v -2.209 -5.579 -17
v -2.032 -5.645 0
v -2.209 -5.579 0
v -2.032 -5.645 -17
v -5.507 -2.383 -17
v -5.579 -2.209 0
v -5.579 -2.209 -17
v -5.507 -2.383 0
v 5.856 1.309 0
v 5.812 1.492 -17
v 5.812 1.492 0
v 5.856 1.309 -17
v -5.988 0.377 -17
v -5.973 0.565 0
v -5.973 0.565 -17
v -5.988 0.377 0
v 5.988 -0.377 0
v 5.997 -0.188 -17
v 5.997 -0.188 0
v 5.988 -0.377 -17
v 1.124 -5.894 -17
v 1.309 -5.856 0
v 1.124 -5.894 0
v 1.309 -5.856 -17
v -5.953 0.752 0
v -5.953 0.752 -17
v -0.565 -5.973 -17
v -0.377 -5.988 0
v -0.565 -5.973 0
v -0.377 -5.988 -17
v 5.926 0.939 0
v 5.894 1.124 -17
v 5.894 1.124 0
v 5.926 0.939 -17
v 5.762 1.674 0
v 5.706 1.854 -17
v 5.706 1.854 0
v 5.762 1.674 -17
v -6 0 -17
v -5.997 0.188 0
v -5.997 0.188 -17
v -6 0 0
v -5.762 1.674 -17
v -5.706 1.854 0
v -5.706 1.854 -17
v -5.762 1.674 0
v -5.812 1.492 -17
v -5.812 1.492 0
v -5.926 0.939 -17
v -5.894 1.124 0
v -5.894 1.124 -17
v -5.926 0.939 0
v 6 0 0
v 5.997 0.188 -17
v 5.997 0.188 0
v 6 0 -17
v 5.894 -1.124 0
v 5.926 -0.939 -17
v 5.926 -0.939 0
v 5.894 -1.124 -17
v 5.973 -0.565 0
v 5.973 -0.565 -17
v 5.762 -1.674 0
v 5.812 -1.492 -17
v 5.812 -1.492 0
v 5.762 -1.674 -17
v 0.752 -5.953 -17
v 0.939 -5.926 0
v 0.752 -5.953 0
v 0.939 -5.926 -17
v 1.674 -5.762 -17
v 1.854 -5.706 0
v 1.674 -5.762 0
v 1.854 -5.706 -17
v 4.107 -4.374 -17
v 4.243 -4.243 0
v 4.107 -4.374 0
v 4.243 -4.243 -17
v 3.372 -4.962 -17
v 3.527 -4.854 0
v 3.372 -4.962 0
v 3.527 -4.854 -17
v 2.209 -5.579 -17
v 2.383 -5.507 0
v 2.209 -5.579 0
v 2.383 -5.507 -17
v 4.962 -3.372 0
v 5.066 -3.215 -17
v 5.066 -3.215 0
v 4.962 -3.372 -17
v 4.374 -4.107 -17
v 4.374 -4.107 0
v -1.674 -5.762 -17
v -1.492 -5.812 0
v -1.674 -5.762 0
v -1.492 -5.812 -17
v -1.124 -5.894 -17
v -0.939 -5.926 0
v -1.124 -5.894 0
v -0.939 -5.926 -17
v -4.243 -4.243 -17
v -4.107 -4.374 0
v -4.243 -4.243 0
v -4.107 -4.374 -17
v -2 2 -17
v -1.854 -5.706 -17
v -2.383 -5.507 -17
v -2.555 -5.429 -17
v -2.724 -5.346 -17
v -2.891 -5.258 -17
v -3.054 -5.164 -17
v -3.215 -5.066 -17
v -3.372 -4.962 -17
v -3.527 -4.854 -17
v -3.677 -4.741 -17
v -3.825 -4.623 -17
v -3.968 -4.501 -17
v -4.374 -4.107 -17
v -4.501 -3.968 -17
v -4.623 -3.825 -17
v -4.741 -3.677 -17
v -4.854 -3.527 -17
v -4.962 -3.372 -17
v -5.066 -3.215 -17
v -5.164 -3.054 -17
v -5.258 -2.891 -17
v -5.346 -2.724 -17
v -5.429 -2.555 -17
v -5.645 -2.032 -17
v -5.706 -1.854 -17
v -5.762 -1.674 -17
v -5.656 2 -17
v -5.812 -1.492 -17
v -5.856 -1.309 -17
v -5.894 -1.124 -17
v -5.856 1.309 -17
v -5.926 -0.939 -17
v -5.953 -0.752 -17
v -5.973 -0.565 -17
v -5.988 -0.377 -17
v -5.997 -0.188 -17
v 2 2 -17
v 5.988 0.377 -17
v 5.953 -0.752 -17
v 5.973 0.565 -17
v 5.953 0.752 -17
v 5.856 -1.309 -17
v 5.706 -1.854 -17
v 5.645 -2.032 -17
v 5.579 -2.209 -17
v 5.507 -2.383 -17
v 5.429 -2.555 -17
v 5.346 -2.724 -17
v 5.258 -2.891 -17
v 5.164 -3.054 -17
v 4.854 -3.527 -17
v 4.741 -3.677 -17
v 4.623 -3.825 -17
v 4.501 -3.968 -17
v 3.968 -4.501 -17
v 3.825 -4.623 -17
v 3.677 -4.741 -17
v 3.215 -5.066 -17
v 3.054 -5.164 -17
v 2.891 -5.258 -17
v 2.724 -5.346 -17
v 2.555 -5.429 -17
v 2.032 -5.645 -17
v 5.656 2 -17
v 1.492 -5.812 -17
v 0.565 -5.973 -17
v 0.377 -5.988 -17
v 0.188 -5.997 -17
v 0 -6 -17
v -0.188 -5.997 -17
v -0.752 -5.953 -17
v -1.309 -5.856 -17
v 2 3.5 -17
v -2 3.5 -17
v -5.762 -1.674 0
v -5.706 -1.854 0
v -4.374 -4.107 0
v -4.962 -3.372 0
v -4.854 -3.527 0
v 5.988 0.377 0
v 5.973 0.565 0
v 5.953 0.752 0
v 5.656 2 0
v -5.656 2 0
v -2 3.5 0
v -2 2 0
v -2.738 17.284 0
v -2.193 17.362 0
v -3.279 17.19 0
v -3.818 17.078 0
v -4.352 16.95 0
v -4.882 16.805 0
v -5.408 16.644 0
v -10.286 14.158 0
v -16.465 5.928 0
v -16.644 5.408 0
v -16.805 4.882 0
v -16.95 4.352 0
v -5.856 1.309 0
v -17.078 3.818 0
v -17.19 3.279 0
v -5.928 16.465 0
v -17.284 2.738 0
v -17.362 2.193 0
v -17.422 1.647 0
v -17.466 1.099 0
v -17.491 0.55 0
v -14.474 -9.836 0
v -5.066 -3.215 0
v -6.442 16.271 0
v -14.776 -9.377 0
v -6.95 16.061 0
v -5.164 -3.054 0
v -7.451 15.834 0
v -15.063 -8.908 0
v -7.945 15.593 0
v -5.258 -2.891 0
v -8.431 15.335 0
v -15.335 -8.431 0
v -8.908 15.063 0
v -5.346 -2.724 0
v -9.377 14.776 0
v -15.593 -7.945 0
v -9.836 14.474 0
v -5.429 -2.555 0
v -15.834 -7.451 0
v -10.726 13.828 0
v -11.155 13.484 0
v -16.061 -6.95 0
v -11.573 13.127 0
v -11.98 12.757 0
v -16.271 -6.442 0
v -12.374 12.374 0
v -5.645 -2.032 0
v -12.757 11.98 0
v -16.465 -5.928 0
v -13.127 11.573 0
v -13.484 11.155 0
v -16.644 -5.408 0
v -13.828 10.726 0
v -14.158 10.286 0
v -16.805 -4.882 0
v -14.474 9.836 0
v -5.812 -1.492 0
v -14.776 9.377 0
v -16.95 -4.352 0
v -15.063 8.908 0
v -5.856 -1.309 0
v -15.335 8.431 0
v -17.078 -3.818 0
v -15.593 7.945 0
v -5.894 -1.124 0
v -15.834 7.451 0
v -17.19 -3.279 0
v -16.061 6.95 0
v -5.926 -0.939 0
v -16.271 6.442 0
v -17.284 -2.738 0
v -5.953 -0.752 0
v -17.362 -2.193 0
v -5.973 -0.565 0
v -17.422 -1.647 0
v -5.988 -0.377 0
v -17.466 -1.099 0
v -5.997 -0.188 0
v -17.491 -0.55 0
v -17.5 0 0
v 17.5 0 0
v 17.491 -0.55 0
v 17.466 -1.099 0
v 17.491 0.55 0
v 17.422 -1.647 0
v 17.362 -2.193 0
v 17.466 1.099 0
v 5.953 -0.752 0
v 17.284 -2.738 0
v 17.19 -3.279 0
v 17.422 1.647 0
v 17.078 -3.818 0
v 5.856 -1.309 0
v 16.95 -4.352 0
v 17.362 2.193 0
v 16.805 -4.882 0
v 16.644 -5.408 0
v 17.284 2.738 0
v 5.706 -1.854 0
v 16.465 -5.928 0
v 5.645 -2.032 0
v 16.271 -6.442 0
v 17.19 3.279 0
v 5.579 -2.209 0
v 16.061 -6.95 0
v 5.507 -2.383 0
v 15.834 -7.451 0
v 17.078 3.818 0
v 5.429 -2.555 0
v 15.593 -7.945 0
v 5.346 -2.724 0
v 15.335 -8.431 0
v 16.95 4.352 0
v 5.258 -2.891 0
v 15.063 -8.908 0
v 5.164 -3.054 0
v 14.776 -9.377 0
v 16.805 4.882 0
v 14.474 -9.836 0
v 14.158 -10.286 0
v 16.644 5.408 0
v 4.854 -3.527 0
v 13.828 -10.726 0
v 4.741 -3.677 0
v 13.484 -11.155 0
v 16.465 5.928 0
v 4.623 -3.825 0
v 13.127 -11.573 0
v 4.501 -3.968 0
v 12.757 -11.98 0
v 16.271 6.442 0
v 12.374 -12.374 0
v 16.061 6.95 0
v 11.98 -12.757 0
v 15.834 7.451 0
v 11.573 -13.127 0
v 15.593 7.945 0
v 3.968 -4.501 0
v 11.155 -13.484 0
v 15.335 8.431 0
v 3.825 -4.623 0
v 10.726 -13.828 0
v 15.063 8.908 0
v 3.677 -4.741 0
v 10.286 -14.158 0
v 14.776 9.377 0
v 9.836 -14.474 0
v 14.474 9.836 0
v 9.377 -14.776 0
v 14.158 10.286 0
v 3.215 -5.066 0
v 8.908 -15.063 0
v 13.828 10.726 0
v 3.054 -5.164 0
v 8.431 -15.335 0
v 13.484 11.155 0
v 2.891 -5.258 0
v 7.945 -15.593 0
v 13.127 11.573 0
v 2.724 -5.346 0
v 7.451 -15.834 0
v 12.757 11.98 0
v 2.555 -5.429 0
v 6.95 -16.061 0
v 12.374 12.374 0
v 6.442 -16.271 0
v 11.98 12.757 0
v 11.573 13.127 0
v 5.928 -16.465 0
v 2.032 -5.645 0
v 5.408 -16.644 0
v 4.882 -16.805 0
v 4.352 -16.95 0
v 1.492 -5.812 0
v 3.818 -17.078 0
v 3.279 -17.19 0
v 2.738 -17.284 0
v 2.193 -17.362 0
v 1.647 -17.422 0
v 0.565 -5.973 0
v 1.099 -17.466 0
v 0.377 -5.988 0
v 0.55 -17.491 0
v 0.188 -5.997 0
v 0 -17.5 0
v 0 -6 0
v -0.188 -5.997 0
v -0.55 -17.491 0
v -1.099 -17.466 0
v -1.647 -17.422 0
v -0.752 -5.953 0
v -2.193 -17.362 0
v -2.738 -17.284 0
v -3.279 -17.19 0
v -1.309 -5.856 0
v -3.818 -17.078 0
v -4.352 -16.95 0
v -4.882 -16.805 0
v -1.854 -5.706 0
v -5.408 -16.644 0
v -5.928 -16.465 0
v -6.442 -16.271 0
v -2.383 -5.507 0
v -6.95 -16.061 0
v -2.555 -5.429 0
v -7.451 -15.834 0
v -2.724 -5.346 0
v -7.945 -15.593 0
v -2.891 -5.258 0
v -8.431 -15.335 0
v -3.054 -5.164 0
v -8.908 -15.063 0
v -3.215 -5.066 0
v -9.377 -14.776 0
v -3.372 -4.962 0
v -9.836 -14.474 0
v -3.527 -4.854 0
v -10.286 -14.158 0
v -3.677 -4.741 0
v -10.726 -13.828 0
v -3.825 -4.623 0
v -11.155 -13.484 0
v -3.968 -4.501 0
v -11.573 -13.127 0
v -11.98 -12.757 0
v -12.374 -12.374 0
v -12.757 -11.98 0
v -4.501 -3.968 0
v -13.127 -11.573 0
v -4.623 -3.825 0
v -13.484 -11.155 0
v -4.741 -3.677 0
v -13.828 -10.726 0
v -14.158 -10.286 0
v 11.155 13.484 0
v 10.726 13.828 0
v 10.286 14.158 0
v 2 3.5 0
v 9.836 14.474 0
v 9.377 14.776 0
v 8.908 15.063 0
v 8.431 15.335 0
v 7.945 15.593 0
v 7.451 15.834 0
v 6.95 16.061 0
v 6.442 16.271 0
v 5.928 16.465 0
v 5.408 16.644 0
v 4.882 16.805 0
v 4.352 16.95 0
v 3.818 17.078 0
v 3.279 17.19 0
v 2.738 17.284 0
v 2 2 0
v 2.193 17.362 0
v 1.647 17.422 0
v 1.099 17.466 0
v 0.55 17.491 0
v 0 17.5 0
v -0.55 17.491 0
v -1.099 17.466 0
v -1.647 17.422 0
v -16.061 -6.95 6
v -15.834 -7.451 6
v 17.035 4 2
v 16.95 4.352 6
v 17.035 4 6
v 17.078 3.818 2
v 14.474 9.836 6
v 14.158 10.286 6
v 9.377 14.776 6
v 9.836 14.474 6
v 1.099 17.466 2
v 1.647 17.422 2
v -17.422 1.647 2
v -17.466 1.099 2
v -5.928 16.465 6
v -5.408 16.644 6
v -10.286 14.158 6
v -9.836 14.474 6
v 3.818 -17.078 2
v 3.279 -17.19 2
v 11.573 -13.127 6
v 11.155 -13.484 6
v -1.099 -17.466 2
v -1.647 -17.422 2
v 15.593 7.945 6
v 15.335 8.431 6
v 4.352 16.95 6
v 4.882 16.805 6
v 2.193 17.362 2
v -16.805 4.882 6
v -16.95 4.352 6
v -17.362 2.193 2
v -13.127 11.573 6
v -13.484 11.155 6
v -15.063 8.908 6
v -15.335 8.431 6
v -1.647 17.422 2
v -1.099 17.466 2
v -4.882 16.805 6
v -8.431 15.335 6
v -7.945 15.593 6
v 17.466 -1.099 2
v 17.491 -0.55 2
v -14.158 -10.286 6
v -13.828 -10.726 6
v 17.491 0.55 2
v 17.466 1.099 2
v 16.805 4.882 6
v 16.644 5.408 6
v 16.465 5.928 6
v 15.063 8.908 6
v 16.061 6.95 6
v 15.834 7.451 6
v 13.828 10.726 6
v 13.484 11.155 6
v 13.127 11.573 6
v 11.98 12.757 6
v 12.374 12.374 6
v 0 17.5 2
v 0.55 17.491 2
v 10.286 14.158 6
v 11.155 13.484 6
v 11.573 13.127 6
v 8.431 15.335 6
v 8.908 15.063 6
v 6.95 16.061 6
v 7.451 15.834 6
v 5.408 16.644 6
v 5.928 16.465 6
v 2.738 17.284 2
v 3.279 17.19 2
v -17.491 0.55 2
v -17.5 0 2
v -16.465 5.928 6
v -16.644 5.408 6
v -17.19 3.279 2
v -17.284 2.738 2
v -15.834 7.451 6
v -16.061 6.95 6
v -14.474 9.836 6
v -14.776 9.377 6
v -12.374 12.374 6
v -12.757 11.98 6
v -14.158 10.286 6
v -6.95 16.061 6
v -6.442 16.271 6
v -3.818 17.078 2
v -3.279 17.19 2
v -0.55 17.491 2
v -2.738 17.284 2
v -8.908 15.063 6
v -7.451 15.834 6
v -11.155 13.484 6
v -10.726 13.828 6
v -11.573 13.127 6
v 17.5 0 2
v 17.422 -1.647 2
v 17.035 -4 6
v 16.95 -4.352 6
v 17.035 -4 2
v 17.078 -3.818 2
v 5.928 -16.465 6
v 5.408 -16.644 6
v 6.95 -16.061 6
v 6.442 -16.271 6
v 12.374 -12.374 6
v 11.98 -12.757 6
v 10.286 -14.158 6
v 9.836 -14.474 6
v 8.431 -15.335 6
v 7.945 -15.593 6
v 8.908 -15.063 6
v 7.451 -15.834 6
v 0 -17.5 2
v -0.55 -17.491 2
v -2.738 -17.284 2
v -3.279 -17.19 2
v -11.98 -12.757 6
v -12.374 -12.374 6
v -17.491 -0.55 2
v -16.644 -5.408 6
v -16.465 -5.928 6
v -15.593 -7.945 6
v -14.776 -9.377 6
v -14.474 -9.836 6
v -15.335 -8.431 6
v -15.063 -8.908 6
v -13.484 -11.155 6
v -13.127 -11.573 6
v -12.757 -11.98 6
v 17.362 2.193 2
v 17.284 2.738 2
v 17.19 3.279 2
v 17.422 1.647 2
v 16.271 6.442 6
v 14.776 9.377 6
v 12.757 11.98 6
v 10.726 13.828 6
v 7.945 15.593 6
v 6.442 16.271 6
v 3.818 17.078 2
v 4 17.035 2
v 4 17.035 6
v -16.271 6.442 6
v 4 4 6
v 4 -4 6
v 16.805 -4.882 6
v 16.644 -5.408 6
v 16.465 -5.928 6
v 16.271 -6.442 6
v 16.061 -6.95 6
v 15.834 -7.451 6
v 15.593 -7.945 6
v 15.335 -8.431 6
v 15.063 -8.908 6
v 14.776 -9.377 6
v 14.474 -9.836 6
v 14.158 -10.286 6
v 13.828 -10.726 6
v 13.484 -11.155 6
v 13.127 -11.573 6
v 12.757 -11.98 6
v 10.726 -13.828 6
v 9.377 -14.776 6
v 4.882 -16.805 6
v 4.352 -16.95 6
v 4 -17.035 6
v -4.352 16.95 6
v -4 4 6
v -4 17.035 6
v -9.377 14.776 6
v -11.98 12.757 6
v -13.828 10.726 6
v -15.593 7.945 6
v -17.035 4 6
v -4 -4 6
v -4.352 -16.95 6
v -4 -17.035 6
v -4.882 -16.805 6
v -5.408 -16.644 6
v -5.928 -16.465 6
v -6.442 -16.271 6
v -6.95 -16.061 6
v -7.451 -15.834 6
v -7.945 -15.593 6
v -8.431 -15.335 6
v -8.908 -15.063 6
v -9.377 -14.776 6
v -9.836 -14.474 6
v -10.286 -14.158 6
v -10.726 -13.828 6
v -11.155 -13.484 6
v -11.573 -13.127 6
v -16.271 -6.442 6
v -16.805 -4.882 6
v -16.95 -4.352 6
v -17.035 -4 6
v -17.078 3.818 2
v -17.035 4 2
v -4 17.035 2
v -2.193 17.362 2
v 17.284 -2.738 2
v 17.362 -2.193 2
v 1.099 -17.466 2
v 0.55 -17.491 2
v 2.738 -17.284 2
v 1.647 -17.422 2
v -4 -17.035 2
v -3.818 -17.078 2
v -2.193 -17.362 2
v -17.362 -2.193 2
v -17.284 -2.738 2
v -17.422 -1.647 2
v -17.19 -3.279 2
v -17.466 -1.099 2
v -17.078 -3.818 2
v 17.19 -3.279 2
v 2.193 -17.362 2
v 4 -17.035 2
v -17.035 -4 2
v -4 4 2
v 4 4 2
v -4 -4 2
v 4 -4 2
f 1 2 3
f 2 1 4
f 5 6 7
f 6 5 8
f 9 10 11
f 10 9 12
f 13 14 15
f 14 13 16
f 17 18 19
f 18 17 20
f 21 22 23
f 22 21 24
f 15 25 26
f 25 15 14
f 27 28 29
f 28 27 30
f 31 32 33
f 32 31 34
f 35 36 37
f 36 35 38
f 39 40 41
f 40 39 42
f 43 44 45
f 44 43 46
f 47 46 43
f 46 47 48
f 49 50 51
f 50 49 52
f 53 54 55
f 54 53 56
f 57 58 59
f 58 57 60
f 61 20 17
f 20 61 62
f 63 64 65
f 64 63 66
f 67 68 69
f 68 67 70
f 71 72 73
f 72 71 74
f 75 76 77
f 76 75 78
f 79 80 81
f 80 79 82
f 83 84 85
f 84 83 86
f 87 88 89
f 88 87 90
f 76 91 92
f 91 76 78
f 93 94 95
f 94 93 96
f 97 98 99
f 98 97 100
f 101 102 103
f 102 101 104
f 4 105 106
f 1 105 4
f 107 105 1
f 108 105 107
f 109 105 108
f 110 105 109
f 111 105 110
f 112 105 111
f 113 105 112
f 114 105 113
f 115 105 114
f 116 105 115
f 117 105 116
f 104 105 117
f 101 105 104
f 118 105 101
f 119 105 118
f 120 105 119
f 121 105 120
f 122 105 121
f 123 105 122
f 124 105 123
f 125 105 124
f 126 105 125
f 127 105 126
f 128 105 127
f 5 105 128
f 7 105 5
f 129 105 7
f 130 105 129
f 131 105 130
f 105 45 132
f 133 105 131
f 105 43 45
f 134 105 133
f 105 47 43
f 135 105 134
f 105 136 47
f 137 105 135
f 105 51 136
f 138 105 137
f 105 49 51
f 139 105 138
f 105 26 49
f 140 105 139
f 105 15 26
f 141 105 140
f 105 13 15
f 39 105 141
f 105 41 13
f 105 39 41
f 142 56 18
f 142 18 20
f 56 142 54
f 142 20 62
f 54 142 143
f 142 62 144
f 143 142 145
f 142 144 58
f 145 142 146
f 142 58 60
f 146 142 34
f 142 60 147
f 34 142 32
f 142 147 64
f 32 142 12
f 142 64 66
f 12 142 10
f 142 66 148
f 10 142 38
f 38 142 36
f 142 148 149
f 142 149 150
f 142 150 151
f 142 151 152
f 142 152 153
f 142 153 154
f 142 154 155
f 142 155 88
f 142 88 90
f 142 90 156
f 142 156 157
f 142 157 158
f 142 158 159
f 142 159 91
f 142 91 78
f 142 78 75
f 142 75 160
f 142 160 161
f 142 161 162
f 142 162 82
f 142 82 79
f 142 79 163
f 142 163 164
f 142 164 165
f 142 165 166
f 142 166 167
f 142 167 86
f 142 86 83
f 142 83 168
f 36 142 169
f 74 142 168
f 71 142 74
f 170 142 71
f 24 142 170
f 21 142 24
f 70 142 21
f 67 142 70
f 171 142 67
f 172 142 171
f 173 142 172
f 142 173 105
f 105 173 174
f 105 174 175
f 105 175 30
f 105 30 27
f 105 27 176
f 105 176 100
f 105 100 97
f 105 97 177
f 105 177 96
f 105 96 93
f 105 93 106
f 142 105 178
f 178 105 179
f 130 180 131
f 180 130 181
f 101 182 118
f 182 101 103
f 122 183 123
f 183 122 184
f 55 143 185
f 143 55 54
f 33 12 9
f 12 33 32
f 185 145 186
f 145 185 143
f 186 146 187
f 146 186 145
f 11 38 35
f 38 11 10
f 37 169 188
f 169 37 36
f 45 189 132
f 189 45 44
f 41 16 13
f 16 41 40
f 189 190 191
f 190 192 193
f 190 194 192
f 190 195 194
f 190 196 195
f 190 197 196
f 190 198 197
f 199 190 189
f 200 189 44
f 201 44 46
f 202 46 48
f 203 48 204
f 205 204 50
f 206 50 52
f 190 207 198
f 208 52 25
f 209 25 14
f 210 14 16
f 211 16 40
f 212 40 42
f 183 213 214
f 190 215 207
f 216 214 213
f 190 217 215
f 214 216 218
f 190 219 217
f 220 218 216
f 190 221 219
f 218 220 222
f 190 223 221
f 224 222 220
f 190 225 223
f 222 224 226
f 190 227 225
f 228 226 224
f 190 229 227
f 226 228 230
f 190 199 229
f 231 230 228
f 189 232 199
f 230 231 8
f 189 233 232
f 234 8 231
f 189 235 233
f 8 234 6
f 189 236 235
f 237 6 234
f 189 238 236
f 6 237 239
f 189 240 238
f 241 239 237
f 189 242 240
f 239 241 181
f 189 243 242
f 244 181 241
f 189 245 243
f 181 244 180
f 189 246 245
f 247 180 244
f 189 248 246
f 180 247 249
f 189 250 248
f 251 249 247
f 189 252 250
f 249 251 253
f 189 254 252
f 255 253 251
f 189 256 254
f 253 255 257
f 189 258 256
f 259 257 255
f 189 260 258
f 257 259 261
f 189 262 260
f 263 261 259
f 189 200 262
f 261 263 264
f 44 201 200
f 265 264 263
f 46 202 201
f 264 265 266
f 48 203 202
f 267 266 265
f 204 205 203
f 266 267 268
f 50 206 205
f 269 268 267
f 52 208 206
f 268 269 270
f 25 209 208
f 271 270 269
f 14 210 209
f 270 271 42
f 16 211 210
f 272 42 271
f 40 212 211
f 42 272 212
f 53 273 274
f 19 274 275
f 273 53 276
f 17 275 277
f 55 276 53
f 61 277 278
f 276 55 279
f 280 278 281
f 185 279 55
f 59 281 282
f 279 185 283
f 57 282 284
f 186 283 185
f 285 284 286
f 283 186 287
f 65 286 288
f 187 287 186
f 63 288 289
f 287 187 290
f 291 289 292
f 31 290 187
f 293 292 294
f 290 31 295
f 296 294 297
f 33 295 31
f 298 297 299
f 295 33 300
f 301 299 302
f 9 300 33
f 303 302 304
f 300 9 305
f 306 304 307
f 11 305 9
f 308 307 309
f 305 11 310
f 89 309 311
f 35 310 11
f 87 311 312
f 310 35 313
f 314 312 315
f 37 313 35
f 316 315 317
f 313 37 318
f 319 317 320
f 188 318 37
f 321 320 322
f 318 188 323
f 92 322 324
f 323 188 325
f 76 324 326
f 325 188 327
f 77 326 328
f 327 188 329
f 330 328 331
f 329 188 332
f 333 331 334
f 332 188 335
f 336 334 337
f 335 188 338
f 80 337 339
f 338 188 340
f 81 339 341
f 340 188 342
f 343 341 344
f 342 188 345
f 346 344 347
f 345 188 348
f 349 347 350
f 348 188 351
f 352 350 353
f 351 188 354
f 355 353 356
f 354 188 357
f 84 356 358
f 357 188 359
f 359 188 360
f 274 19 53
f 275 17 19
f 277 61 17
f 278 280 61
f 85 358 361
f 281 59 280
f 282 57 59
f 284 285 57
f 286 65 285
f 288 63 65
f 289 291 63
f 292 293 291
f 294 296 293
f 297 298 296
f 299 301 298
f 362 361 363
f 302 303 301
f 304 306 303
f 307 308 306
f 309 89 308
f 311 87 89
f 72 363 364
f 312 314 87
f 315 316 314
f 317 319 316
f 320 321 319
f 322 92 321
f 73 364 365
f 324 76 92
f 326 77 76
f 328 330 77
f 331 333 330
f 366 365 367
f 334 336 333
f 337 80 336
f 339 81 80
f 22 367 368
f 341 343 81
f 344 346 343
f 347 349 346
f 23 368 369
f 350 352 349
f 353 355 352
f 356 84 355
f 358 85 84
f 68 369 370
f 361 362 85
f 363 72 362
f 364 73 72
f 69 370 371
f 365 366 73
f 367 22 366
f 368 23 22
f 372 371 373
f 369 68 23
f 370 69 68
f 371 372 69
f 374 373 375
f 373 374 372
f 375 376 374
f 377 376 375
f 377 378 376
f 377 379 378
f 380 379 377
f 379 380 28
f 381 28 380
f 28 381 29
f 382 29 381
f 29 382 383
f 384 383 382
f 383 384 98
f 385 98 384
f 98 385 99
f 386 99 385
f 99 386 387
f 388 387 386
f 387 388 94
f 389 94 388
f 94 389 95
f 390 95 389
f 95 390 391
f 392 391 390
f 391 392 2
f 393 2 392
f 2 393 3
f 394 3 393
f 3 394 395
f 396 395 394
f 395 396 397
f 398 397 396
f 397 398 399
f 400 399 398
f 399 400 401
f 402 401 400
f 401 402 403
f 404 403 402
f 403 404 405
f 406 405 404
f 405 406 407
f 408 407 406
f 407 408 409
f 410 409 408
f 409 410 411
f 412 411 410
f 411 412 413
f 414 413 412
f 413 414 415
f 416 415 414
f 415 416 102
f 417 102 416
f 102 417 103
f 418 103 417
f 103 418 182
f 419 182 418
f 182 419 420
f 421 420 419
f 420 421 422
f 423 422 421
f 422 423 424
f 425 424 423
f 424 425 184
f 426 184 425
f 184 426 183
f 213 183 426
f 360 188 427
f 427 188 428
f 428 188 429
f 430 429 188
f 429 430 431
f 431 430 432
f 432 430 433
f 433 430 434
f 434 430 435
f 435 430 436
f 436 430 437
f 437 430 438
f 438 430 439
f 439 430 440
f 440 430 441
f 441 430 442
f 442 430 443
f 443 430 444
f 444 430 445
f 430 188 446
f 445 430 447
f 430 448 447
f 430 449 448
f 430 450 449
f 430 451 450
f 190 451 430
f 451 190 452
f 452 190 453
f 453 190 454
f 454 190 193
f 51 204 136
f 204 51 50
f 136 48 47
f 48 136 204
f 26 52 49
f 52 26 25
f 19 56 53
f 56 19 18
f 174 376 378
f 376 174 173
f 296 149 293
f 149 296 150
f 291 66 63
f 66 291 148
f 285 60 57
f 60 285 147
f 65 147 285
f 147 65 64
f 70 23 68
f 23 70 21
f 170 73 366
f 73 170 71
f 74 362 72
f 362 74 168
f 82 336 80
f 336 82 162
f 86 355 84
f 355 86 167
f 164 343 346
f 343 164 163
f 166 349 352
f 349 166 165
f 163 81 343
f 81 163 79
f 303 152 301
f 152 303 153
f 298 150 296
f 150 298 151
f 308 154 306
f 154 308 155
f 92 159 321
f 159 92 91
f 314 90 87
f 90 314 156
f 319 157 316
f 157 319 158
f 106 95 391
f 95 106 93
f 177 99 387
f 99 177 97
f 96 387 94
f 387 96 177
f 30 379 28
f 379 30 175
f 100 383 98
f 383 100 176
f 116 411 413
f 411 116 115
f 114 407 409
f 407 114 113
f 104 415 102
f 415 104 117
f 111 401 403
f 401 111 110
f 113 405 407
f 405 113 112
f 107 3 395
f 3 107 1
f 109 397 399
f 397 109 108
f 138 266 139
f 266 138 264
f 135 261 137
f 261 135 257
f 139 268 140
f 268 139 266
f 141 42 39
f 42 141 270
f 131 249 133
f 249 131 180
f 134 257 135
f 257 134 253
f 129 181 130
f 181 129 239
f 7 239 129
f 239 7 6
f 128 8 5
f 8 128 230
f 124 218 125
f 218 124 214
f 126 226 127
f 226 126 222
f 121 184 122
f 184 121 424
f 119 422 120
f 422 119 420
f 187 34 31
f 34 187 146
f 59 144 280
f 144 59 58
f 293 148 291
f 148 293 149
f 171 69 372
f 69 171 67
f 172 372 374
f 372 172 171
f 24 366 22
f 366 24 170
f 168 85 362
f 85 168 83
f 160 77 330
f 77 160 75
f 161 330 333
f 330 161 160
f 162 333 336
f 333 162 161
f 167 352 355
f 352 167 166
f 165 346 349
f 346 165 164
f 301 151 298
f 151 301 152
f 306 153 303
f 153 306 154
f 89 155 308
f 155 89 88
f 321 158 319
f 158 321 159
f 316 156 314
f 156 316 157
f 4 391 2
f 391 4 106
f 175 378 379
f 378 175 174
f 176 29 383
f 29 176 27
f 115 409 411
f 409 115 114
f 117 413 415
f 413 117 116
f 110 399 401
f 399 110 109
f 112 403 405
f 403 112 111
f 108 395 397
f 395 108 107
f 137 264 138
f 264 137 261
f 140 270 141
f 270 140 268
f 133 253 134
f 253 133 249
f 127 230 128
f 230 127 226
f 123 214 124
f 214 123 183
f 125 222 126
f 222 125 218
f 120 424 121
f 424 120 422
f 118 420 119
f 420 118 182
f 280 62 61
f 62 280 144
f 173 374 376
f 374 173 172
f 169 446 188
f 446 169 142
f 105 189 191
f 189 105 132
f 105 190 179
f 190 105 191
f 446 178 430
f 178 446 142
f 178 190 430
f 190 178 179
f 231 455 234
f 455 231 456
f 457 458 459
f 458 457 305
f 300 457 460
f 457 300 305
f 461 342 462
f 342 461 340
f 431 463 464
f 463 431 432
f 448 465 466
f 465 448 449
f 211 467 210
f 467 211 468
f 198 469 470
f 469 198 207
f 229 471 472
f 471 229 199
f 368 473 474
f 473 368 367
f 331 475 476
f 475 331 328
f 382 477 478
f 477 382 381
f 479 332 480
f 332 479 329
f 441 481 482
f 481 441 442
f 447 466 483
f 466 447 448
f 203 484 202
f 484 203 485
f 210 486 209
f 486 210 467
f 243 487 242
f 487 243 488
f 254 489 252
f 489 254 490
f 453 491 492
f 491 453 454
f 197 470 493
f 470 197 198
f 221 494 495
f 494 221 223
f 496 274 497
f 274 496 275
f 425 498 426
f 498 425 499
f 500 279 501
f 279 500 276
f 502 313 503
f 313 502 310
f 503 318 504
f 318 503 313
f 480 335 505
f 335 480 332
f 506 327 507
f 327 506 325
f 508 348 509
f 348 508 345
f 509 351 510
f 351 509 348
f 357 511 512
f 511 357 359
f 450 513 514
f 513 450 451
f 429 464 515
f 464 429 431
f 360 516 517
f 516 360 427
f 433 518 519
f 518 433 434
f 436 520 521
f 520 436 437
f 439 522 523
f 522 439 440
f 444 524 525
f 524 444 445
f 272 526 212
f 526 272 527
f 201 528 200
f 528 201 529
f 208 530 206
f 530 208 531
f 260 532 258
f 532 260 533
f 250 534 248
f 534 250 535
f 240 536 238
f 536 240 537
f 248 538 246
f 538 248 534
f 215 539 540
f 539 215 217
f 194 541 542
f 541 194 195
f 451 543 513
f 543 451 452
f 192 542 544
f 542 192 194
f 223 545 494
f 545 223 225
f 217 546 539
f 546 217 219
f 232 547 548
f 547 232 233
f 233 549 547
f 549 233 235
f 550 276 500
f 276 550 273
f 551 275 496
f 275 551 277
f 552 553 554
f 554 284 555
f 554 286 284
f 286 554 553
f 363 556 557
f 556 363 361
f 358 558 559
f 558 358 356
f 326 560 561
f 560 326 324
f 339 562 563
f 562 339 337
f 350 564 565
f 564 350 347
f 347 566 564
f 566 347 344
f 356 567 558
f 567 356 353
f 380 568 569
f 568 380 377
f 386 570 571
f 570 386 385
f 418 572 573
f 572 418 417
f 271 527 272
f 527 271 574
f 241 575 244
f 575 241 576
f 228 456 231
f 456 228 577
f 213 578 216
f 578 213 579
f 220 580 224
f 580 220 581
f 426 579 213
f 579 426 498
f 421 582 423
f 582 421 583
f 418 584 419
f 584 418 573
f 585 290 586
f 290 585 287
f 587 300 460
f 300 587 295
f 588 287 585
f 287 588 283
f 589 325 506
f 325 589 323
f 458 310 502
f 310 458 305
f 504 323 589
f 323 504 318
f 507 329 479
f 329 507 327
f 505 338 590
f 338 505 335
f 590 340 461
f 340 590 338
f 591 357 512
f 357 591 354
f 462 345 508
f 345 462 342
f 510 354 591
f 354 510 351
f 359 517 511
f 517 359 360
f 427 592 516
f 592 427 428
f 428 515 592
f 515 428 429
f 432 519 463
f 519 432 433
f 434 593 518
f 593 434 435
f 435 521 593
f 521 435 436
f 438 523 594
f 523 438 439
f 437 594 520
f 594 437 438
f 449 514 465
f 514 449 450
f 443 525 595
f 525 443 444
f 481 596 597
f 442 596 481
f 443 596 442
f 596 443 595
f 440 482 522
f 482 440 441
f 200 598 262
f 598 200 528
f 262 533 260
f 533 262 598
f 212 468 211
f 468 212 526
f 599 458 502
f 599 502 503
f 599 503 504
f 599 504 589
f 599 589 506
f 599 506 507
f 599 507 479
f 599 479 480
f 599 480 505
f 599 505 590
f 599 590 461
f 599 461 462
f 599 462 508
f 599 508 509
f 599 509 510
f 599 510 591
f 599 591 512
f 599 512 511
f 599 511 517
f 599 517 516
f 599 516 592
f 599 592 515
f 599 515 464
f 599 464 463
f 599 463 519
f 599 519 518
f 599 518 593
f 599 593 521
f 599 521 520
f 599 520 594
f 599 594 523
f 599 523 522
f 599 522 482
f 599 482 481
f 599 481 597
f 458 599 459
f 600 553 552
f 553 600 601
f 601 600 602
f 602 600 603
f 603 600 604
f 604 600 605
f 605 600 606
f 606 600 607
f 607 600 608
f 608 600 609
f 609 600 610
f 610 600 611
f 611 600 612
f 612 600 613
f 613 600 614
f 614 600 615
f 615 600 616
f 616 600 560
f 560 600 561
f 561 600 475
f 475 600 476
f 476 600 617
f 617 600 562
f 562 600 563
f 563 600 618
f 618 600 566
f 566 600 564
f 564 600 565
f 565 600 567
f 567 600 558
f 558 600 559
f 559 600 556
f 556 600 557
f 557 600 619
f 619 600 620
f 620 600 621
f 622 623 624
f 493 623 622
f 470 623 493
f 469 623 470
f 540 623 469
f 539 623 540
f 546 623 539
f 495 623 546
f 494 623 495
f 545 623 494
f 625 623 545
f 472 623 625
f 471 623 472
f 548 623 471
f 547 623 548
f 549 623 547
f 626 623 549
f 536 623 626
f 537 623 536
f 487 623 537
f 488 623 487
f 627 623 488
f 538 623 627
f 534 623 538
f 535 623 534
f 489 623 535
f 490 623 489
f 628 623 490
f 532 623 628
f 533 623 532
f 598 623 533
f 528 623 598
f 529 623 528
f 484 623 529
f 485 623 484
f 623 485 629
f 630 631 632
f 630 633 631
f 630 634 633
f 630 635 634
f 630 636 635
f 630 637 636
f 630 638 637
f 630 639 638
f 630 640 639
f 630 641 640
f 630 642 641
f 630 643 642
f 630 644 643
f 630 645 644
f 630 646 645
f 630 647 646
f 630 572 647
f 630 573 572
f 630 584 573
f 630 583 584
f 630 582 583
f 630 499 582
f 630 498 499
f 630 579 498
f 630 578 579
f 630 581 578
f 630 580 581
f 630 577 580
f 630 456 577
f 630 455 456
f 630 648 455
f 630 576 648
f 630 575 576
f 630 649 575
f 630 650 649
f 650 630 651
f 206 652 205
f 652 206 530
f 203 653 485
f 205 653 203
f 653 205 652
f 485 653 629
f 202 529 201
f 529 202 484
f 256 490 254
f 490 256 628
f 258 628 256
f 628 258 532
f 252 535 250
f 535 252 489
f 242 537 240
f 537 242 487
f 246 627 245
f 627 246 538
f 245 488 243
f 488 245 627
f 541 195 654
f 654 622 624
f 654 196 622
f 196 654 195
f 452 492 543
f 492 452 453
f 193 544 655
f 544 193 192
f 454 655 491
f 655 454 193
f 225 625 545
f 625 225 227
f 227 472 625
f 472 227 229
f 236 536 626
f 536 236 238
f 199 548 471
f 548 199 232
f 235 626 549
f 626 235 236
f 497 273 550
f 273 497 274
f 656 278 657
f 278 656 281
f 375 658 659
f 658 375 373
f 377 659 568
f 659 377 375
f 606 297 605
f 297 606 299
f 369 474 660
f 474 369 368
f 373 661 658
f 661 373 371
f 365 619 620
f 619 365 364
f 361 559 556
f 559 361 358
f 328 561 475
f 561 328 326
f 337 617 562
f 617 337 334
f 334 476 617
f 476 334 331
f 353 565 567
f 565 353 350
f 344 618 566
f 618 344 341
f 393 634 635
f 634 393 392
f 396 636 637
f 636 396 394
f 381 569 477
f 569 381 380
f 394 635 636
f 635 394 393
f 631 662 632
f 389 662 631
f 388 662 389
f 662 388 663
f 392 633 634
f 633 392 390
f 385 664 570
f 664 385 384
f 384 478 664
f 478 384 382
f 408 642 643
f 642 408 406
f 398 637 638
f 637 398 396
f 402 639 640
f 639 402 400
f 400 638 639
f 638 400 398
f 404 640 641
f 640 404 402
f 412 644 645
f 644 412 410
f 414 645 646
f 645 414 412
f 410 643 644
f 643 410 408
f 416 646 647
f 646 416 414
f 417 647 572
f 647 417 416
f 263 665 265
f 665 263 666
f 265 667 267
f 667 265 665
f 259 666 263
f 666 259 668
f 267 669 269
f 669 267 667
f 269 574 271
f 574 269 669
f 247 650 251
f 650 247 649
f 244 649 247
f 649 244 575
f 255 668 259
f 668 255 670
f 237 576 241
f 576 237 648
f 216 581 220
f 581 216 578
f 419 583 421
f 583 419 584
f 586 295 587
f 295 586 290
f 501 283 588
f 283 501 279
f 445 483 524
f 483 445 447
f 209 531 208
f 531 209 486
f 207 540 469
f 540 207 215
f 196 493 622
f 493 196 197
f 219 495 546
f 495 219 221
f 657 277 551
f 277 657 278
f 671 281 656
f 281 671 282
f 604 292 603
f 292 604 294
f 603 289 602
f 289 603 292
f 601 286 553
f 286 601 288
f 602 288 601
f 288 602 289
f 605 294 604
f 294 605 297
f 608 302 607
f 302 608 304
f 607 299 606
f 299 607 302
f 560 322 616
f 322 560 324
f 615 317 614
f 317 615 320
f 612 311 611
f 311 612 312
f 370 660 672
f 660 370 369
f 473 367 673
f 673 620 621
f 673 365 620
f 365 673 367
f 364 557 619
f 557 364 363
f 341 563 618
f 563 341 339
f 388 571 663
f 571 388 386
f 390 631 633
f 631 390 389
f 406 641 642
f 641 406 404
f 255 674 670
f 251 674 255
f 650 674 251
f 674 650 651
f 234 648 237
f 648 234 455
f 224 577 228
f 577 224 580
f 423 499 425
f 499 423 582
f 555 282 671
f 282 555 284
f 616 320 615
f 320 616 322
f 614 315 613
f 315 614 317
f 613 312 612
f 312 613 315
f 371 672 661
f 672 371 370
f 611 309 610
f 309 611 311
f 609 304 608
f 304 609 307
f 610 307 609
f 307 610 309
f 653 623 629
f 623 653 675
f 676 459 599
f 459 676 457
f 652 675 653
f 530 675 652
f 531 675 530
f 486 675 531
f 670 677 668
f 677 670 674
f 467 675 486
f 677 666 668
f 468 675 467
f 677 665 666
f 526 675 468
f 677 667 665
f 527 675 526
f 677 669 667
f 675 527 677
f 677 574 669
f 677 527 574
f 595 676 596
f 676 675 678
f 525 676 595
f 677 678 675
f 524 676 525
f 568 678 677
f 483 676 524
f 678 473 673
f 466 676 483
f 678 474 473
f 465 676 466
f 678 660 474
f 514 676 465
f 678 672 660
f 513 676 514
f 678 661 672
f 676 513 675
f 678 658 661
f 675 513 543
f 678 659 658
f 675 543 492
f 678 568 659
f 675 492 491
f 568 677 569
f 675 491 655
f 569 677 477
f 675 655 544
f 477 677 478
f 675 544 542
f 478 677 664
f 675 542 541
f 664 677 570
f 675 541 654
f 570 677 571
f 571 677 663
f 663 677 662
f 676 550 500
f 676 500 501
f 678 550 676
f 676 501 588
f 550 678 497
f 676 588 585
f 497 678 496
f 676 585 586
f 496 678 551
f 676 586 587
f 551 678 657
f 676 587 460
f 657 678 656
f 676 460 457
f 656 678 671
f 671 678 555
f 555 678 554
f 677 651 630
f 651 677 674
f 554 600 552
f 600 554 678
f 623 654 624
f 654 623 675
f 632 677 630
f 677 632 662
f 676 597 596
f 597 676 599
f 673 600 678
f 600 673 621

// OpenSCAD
// quality
q=200;

ShaftLength=17;
ShaftDiameter=12;
ShaftOffset=8;

TopCylHeight=6;
TopCylDia=35;

difference(){
	union(){
		// shaft
        translate([0,0,-ShaftLength/2]){
            difference(){
                cylinder(h=ShaftLength, d=ShaftDiameter, center=true, $fn=q);
                translate([-ShaftDiameter/2,(ShaftDiameter-ShaftOffset)/2,-ShaftLength/2-1])
                    cube([ShaftLength,ShaftDiameter,ShaftLength+2]);
                    
            }
            translate([-2,(ShaftDiameter-ShaftOffset)/2,-ShaftLength/2])
                cube([4,1.5,ShaftLength]);
        }
        translate([0,0,TopCylHeight/2])
            difference(){
                cylinder(h=TopCylHeight, d=TopCylDia, center=true, $fn=q);
                translate([-TopCylDia/2,-4,-1])
                    cube([TopCylDia+2,8,TopCylHeight]);
                translate([-4,-TopCylDia/2,-1])
                    cube([8,TopCylDia+2,TopCylHeight]);
            }
    }
}
	
